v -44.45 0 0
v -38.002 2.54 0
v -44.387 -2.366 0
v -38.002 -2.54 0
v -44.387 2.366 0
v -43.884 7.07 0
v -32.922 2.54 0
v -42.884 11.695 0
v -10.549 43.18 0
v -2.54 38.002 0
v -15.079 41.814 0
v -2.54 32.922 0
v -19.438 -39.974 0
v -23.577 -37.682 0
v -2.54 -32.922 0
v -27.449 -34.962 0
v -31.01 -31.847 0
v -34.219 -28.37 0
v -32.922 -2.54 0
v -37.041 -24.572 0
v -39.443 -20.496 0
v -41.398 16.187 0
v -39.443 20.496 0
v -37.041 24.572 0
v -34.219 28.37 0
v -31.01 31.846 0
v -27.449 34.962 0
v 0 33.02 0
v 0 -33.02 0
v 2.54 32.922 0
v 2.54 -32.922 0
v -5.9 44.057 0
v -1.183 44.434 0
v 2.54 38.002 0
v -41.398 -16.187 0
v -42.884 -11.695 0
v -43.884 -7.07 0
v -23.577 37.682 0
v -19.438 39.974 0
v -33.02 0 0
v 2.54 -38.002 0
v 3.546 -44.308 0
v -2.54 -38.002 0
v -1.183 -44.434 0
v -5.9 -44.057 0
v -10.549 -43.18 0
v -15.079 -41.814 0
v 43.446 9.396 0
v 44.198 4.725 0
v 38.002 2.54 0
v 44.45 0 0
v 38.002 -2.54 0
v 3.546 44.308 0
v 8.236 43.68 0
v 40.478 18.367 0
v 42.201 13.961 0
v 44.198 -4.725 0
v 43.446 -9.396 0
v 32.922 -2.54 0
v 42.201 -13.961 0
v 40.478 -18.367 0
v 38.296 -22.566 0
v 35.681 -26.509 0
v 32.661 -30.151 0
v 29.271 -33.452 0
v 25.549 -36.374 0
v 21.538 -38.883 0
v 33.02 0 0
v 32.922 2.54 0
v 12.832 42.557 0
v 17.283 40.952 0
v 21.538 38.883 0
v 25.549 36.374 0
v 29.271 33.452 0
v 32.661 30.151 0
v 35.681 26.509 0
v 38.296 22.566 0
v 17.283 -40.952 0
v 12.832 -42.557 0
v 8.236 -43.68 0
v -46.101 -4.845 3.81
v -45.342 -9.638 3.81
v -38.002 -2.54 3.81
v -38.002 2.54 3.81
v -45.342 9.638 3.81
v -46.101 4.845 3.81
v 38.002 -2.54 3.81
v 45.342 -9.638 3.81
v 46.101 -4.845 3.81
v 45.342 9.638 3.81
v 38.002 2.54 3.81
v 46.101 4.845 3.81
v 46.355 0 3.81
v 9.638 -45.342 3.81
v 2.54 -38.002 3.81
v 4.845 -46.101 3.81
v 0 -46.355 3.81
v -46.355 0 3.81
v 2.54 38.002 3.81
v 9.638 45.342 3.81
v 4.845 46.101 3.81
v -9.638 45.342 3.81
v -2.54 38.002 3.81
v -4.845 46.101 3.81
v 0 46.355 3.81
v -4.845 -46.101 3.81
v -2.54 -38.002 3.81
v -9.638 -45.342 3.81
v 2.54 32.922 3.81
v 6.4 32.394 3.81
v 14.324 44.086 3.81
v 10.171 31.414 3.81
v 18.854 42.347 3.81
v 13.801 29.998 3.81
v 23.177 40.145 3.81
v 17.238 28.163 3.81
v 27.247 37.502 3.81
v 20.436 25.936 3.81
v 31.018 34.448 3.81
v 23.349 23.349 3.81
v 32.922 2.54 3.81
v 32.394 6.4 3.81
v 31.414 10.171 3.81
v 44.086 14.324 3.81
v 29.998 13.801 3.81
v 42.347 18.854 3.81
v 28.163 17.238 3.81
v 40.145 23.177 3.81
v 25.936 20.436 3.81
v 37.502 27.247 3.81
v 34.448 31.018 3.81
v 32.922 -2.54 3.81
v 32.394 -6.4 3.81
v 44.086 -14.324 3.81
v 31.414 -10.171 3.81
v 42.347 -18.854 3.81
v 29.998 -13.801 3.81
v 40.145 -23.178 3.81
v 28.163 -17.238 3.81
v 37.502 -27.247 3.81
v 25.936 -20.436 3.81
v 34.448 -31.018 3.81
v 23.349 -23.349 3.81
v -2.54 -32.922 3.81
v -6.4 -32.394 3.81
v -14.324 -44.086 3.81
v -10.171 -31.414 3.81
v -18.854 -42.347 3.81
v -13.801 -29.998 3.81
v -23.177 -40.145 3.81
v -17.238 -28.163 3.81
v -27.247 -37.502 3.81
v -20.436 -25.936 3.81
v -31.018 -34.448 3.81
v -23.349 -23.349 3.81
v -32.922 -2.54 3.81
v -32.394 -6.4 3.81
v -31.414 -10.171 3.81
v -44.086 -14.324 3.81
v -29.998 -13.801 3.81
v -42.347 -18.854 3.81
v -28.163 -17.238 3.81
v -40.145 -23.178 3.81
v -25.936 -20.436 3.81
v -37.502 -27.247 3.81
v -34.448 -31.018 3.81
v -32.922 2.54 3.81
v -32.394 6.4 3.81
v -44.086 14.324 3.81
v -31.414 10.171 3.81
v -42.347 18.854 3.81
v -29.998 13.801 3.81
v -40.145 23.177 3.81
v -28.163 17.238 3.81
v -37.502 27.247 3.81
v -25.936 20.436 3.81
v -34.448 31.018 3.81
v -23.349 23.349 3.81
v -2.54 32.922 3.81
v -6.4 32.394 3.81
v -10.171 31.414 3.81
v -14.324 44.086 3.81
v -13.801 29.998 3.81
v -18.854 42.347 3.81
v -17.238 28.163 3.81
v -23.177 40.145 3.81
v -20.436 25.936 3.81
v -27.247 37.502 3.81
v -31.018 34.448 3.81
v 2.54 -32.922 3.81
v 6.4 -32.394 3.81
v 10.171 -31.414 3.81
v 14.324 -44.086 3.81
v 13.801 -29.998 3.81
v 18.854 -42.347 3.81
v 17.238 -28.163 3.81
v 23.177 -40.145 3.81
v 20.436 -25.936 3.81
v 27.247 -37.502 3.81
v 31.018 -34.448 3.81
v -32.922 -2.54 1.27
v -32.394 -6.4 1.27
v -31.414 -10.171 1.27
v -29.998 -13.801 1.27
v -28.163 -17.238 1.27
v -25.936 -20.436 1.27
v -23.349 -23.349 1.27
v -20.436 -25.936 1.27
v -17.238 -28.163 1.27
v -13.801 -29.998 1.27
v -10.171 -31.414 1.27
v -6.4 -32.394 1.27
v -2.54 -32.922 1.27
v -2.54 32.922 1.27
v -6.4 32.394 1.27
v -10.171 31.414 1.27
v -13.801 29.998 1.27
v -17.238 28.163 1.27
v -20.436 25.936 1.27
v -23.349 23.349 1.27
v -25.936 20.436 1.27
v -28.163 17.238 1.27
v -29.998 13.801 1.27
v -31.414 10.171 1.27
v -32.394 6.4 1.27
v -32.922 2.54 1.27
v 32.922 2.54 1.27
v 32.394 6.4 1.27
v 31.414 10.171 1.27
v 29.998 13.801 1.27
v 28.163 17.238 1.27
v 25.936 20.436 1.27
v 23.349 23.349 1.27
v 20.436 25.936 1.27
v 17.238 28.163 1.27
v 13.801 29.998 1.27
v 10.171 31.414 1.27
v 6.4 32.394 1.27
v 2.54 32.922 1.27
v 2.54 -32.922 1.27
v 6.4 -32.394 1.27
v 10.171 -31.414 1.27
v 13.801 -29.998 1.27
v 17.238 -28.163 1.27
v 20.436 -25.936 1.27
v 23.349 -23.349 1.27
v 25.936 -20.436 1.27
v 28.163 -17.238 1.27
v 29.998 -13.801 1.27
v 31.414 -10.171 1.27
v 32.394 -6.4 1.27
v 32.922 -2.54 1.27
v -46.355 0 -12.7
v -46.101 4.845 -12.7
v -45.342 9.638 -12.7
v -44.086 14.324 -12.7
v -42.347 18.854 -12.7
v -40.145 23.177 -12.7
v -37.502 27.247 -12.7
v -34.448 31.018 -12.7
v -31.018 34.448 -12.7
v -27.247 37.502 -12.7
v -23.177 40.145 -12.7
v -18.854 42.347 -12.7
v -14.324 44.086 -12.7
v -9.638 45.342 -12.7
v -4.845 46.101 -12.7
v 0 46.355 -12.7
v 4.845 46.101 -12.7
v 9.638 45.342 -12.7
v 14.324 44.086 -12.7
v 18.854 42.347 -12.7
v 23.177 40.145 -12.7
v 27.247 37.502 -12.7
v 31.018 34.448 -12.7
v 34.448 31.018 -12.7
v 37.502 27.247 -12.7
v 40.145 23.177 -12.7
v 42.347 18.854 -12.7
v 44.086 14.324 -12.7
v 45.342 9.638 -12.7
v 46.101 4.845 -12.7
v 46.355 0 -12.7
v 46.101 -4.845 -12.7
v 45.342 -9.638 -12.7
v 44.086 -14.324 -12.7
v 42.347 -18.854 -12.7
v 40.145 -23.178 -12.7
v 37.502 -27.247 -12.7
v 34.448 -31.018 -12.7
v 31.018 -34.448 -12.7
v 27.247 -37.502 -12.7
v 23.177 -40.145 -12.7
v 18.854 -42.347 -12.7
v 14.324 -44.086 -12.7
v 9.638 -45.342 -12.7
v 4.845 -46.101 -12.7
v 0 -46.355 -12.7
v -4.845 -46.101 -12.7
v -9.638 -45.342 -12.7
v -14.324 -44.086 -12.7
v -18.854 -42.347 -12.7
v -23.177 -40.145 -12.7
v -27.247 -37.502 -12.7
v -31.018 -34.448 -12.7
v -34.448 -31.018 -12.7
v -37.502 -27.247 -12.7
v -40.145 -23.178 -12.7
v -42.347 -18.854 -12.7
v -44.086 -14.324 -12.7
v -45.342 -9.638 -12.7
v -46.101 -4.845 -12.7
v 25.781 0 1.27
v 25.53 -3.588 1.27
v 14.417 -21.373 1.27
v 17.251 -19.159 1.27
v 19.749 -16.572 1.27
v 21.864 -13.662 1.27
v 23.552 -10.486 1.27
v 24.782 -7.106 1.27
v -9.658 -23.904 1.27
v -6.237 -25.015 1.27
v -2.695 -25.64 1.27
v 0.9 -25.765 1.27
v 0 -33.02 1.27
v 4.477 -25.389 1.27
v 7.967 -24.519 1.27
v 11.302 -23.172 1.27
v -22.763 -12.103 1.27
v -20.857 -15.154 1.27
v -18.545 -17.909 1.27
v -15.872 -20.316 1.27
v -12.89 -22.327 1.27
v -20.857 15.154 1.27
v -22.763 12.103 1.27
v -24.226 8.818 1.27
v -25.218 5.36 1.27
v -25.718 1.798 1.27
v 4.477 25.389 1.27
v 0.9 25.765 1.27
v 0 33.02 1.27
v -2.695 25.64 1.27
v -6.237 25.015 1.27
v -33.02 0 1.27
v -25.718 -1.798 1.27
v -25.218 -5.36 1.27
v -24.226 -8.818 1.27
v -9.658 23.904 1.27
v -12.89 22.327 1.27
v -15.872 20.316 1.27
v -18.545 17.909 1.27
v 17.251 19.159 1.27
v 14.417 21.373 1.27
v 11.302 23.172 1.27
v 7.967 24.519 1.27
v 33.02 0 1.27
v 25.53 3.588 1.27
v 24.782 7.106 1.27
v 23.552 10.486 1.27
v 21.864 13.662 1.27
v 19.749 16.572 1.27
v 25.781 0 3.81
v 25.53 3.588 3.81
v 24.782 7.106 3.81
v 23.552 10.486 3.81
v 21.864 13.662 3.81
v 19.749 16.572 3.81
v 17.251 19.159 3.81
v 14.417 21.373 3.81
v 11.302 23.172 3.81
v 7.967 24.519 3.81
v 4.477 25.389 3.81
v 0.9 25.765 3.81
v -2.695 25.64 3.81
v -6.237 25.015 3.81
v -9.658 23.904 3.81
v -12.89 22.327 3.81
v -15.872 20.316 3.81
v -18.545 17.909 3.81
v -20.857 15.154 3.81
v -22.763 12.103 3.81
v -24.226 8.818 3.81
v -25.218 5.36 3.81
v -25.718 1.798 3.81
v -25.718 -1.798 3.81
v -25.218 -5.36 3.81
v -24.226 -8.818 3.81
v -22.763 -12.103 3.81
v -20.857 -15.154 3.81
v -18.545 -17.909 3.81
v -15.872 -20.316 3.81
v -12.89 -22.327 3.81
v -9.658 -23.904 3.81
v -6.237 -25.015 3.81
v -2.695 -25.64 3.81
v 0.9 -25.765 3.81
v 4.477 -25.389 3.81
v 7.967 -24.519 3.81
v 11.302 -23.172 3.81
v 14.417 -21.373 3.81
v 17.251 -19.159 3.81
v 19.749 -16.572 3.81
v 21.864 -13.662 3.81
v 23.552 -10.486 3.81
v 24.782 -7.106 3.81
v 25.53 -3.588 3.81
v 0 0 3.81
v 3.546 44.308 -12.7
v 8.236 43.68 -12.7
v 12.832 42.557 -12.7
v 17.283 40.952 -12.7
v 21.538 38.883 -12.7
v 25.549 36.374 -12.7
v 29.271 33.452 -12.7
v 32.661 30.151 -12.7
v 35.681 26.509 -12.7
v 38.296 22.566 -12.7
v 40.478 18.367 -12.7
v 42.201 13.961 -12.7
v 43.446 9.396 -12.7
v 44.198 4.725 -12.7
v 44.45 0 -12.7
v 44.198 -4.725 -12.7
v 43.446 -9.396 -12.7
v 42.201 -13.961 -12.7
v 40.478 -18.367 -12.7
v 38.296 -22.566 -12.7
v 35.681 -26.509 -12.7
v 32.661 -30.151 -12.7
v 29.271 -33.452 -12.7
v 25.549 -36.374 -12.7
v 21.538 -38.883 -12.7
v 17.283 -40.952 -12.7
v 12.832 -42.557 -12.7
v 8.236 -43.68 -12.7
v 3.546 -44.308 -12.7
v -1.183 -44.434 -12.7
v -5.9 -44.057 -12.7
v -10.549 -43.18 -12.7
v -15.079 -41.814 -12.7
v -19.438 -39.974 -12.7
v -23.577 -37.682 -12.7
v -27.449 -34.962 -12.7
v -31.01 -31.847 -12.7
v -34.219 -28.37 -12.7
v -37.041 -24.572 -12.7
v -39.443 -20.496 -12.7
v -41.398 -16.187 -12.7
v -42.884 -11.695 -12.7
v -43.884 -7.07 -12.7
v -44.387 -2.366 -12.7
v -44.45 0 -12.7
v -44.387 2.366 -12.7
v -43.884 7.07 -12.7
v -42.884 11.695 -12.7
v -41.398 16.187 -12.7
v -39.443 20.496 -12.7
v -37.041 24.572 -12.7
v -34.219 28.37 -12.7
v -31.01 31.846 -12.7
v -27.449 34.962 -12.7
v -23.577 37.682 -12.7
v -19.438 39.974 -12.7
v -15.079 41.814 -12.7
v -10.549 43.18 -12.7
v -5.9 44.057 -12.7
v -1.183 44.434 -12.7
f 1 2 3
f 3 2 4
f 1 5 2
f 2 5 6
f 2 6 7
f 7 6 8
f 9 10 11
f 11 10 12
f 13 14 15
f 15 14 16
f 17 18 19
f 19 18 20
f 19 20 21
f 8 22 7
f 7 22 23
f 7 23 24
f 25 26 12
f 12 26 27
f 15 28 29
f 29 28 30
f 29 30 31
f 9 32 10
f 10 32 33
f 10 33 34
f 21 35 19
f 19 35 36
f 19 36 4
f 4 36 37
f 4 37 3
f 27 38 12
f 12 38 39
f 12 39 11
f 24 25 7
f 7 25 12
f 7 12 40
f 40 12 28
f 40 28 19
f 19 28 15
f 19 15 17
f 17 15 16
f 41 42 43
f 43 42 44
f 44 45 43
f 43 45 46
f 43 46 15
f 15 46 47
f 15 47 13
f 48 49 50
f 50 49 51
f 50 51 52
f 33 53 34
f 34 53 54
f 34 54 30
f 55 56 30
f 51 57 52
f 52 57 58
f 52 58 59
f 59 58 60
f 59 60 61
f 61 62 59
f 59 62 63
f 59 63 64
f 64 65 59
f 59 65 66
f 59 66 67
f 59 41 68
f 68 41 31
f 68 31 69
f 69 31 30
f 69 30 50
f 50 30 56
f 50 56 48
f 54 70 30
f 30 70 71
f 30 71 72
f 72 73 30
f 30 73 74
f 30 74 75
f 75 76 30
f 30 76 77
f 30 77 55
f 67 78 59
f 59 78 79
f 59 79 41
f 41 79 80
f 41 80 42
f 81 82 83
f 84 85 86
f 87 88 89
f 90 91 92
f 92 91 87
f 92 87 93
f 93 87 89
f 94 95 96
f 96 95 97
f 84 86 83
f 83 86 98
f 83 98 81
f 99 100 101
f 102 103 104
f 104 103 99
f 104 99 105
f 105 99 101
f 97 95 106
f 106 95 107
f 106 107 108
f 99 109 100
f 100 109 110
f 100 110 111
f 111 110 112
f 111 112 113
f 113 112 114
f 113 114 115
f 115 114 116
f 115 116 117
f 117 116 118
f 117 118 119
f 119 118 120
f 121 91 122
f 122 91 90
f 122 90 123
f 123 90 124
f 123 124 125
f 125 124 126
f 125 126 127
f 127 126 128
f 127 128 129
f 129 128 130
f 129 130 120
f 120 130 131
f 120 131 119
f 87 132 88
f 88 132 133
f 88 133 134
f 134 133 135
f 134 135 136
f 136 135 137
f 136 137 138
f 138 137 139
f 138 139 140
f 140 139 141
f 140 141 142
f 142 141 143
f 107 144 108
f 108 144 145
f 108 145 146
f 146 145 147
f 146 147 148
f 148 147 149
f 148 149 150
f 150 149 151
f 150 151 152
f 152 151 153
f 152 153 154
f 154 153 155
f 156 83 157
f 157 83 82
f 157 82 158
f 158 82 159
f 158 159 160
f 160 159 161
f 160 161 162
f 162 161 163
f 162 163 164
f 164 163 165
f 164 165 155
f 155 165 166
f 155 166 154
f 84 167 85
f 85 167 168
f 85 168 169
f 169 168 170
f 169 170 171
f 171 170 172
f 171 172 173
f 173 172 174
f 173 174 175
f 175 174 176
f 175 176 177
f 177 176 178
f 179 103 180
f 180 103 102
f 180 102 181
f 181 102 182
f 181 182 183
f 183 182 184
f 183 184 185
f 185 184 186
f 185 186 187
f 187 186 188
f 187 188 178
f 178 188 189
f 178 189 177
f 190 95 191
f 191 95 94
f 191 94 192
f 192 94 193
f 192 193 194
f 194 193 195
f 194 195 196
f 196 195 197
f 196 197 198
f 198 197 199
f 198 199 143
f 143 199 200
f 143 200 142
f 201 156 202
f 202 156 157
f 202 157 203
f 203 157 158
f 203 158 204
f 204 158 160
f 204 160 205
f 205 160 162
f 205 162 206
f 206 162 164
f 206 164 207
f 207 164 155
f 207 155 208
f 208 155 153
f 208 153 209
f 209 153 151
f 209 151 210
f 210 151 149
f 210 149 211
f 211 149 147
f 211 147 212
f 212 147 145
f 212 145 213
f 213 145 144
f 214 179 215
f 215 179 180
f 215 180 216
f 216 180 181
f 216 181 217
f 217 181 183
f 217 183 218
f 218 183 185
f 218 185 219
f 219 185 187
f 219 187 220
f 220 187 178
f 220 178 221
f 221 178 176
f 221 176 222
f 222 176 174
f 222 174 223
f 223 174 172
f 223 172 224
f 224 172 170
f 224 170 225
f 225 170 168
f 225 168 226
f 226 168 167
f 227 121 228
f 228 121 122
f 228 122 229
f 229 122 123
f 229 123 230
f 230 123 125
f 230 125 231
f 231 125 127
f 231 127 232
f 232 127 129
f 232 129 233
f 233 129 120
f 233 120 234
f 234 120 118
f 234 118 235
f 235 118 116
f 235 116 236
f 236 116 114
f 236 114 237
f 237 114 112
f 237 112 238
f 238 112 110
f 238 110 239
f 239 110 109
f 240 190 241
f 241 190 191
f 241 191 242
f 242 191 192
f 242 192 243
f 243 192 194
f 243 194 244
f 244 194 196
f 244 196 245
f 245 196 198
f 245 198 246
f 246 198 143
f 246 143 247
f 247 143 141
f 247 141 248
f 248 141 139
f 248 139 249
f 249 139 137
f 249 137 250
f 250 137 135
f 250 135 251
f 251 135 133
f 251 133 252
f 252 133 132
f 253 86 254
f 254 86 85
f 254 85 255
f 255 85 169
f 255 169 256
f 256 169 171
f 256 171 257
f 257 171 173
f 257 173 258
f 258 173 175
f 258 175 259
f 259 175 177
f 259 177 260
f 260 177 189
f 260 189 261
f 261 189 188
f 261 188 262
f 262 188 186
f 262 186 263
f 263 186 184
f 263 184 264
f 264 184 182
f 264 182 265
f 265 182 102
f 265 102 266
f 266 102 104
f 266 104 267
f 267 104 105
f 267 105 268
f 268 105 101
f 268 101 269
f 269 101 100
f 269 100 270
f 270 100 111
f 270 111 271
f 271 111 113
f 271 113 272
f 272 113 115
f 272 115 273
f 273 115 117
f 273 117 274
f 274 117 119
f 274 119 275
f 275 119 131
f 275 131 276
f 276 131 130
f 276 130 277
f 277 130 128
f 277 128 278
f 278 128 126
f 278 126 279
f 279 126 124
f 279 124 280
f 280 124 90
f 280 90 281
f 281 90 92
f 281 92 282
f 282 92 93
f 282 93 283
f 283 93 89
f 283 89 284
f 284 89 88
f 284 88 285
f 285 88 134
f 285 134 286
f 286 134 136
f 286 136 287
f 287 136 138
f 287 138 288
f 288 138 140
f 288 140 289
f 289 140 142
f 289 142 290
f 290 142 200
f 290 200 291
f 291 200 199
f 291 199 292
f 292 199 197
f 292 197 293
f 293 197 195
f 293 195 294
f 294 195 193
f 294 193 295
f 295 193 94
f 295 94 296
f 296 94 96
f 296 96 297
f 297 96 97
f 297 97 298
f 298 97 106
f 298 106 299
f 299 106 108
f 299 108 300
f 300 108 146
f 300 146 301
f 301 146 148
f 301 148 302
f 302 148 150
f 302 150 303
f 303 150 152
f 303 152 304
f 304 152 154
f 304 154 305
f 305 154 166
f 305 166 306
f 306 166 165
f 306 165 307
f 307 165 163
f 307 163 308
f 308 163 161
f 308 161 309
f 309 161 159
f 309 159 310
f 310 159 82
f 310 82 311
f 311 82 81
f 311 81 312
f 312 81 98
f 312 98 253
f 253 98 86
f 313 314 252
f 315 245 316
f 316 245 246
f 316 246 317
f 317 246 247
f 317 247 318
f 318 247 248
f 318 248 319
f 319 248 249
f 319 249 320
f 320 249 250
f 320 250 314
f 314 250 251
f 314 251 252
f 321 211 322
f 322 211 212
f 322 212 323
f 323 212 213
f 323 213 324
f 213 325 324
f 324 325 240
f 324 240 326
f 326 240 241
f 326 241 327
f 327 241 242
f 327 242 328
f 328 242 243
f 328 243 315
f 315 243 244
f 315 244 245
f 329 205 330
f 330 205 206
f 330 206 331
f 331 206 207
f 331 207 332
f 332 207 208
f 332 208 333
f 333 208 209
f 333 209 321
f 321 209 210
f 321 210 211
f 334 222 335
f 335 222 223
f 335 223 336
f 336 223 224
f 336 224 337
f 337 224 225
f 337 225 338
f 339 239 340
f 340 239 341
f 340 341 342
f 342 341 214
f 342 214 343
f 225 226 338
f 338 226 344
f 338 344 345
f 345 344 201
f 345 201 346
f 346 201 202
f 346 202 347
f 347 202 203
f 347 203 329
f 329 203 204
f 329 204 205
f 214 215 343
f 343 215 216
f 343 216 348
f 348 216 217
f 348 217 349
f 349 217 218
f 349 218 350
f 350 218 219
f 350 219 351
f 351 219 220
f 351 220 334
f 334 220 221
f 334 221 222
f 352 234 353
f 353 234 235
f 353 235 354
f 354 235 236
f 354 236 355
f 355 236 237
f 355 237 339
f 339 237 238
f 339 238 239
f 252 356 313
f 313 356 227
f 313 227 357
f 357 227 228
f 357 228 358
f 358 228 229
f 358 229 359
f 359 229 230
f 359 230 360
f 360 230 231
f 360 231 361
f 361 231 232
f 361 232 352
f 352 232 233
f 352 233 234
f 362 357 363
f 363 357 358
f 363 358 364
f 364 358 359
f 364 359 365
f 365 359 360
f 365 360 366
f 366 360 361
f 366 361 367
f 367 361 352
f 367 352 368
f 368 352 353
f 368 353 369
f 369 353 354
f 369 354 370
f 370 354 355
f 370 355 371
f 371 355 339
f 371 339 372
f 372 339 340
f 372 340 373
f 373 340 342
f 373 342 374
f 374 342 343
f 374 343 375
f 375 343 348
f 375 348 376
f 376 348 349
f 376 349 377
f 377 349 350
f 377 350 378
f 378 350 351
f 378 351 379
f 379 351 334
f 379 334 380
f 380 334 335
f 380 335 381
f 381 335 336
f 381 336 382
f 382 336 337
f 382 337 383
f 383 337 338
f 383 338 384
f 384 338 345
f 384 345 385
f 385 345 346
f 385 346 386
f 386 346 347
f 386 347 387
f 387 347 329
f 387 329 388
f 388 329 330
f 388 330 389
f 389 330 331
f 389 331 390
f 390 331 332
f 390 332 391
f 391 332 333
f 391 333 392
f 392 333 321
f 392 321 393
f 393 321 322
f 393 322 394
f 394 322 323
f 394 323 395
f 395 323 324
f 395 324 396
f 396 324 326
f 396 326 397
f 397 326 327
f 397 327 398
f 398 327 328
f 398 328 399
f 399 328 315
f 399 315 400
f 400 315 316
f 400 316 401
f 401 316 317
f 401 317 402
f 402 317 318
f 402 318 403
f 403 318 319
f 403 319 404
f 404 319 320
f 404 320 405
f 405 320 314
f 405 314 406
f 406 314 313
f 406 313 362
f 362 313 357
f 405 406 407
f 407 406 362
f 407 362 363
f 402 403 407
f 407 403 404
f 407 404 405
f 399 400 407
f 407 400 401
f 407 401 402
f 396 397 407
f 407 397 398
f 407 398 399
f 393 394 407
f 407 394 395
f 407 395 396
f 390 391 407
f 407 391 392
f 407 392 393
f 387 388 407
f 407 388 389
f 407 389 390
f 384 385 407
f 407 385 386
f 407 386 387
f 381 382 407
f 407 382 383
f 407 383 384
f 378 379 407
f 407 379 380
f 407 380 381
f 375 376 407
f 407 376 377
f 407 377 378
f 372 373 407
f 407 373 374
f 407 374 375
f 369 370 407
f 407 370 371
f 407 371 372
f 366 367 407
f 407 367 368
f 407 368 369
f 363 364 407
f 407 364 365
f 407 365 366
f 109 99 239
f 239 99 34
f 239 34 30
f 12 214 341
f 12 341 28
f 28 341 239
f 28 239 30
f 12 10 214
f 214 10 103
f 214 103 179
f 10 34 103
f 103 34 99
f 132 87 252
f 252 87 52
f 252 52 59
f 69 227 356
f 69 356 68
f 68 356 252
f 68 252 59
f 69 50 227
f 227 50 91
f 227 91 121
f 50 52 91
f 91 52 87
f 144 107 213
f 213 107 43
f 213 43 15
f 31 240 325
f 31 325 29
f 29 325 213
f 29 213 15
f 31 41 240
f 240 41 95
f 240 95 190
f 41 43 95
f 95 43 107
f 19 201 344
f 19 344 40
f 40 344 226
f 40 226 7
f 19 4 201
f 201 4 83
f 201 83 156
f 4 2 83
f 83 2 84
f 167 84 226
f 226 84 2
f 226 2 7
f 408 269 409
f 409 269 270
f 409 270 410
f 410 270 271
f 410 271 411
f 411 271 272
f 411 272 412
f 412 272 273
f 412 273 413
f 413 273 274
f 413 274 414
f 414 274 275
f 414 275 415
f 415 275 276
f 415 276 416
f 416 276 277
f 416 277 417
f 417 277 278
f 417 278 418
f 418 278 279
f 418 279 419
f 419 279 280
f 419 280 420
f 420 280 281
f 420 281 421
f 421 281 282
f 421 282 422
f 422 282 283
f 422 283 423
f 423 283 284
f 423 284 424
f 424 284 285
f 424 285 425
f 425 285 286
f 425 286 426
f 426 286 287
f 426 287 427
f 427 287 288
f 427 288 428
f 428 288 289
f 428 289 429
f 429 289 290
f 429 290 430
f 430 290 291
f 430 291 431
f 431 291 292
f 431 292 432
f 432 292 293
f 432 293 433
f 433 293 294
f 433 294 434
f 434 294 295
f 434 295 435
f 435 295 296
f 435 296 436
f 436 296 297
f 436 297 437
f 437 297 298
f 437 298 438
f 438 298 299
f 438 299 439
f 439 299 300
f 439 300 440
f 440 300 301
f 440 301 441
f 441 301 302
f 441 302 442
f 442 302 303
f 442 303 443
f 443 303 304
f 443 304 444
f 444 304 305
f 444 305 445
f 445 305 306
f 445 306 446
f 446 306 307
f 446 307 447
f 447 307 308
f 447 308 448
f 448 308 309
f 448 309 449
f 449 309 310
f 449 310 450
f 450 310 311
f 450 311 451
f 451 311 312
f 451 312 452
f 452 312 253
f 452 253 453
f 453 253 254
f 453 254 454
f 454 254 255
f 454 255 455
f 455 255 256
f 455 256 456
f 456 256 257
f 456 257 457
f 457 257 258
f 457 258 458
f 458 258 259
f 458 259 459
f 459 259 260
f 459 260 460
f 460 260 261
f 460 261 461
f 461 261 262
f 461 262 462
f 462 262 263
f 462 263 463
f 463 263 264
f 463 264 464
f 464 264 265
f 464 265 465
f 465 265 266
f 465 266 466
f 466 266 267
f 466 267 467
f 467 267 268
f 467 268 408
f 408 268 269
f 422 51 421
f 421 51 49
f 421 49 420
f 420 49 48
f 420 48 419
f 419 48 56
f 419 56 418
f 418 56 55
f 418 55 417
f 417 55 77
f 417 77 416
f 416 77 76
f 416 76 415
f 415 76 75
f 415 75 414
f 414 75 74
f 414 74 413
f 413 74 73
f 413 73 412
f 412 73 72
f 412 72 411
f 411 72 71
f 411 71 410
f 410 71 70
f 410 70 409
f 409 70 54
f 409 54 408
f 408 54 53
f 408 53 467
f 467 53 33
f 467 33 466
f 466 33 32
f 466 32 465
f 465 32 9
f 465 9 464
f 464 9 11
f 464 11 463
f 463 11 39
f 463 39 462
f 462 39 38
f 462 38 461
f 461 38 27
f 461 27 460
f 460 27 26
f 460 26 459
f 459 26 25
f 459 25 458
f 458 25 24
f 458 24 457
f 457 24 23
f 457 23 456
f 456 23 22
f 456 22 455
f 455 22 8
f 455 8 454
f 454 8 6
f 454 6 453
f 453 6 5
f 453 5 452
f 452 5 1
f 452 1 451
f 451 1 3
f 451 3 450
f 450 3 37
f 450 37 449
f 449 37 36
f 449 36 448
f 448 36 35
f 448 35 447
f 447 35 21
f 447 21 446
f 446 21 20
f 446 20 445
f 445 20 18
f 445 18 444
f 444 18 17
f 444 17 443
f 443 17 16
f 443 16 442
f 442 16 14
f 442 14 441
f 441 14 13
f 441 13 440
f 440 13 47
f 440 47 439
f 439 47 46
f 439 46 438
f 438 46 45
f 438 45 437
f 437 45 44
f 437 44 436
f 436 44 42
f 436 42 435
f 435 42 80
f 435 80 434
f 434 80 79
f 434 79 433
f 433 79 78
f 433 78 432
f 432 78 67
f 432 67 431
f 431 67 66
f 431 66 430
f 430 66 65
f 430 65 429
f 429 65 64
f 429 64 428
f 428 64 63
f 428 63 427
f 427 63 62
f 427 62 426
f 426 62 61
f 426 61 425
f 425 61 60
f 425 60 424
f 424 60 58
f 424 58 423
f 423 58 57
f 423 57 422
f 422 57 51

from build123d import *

# Parameters (mm, degrees)
SKETCH1_R           = 46.355
BOSS_EXTRUDE1_DEPTH = 3.81
SKETCH2_R           = 33.02
SKETCH2_R_2         = 25.781
CUT_EXTRUDE1_DEPTH  = 2.54
CUT_EXTRUDE2_DEPTH  = 66.666491836
BOSS_EXTRUDE2_START = 12.7
SKETCH4_R           = 46.355
SKETCH4_R_2         = 44.45
BOSS_EXTRUDE2_DEPTH = 12.7


with BuildPart() as part:
    # Sketch1 → Boss-Extrude1 (new body)
    with BuildSketch(Plane.XY):
        with Locations(Location((0, 0, 0), (0, 0, 180))):
            Circle(SKETCH1_R)
    extrude(amount=BOSS_EXTRUDE1_DEPTH)

    # Sketch2 → Cut-Extrude1 (cut)
    with BuildSketch(Plane.XY.offset(3.81)):
        Circle(SKETCH2_R)
        Circle(SKETCH2_R_2, mode=Mode.SUBTRACT)
    extrude(amount=-CUT_EXTRUDE1_DEPTH, mode=Mode.SUBTRACT)

    # Sketch3 → Cut-Extrude2 (cut, through all)
    with BuildSketch(Plane.XY.offset(3.81)):
        with BuildLine():
            ThreePointArc((0, 33.02), (1.270941789, 32.995531621), (2.54, 32.922162748))
            Line((2.54, 32.922162748), (2.54, 38.002162748))
            Line((2.54, 38.002162748), (0, 38.002162748))
            Line((0, 38.002162748), (0, 33.02))
        make_face()
        with BuildLine():
            ThreePointArc((-2.54, 32.922162748), (-1.270941789, 32.995531621), (0, 33.02))
            Line((0, 33.02), (0, 38.002162748))
            Line((0, 38.002162748), (-2.54, 38.002162748))
            Line((-2.54, 38.002162748), (-2.54, 32.922162748))
        make_face()
        with BuildLine():
            Line((-38.002162748, -2.54), (-32.922162748, -2.54))
            ThreePointArc((-32.922162748, -2.54), (-33.02, 0), (-32.922162748, 2.54))
            Line((-32.922162748, 2.54), (-38.002162748, 2.54))
            Line((-38.002162748, 2.54), (-38.002162748, -2.54))
        make_face()
        with BuildLine():
            Line((2.54, -38.002162748), (2.54, -32.922162748))
            ThreePointArc((2.54, -32.922162748), (0, -33.02), (-2.54, -32.922162748))
            Line((-2.54, -32.922162748), (-2.54, -38.002162748))
            Line((-2.54, -38.002162748), (2.54, -38.002162748))
        make_face()
        with BuildLine():
            ThreePointArc((33.02, 0), (32.995531621, -1.270941789), (32.922162748, -2.54))
            Line((32.922162748, -2.54), (38.002162748, -2.54))
            Line((38.002162748, -2.54), (38.002162748, 2.54))
            Line((38.002162748, 2.54), (32.922162748, 2.54))
            ThreePointArc((32.922162748, 2.54), (32.995531621, 1.270941789), (33.02, 0))
        make_face()
    extrude(amount=-CUT_EXTRUDE2_DEPTH, mode=Mode.SUBTRACT)

    # Sketch4 → Boss-Extrude2 (add)
    with BuildSketch(Plane(origin=(0, 0, 0), x_dir=(-1, 0, 0), z_dir=(0, 0, -1)).offset(BOSS_EXTRUDE2_START)):
        Circle(SKETCH4_R)
        with Locations(Location((0, 0, 0), (0, 0, 180))):
            Circle(SKETCH4_R_2, mode=Mode.SUBTRACT)
    extrude(amount=-BOSS_EXTRUDE2_DEPTH)


solid = part.part
